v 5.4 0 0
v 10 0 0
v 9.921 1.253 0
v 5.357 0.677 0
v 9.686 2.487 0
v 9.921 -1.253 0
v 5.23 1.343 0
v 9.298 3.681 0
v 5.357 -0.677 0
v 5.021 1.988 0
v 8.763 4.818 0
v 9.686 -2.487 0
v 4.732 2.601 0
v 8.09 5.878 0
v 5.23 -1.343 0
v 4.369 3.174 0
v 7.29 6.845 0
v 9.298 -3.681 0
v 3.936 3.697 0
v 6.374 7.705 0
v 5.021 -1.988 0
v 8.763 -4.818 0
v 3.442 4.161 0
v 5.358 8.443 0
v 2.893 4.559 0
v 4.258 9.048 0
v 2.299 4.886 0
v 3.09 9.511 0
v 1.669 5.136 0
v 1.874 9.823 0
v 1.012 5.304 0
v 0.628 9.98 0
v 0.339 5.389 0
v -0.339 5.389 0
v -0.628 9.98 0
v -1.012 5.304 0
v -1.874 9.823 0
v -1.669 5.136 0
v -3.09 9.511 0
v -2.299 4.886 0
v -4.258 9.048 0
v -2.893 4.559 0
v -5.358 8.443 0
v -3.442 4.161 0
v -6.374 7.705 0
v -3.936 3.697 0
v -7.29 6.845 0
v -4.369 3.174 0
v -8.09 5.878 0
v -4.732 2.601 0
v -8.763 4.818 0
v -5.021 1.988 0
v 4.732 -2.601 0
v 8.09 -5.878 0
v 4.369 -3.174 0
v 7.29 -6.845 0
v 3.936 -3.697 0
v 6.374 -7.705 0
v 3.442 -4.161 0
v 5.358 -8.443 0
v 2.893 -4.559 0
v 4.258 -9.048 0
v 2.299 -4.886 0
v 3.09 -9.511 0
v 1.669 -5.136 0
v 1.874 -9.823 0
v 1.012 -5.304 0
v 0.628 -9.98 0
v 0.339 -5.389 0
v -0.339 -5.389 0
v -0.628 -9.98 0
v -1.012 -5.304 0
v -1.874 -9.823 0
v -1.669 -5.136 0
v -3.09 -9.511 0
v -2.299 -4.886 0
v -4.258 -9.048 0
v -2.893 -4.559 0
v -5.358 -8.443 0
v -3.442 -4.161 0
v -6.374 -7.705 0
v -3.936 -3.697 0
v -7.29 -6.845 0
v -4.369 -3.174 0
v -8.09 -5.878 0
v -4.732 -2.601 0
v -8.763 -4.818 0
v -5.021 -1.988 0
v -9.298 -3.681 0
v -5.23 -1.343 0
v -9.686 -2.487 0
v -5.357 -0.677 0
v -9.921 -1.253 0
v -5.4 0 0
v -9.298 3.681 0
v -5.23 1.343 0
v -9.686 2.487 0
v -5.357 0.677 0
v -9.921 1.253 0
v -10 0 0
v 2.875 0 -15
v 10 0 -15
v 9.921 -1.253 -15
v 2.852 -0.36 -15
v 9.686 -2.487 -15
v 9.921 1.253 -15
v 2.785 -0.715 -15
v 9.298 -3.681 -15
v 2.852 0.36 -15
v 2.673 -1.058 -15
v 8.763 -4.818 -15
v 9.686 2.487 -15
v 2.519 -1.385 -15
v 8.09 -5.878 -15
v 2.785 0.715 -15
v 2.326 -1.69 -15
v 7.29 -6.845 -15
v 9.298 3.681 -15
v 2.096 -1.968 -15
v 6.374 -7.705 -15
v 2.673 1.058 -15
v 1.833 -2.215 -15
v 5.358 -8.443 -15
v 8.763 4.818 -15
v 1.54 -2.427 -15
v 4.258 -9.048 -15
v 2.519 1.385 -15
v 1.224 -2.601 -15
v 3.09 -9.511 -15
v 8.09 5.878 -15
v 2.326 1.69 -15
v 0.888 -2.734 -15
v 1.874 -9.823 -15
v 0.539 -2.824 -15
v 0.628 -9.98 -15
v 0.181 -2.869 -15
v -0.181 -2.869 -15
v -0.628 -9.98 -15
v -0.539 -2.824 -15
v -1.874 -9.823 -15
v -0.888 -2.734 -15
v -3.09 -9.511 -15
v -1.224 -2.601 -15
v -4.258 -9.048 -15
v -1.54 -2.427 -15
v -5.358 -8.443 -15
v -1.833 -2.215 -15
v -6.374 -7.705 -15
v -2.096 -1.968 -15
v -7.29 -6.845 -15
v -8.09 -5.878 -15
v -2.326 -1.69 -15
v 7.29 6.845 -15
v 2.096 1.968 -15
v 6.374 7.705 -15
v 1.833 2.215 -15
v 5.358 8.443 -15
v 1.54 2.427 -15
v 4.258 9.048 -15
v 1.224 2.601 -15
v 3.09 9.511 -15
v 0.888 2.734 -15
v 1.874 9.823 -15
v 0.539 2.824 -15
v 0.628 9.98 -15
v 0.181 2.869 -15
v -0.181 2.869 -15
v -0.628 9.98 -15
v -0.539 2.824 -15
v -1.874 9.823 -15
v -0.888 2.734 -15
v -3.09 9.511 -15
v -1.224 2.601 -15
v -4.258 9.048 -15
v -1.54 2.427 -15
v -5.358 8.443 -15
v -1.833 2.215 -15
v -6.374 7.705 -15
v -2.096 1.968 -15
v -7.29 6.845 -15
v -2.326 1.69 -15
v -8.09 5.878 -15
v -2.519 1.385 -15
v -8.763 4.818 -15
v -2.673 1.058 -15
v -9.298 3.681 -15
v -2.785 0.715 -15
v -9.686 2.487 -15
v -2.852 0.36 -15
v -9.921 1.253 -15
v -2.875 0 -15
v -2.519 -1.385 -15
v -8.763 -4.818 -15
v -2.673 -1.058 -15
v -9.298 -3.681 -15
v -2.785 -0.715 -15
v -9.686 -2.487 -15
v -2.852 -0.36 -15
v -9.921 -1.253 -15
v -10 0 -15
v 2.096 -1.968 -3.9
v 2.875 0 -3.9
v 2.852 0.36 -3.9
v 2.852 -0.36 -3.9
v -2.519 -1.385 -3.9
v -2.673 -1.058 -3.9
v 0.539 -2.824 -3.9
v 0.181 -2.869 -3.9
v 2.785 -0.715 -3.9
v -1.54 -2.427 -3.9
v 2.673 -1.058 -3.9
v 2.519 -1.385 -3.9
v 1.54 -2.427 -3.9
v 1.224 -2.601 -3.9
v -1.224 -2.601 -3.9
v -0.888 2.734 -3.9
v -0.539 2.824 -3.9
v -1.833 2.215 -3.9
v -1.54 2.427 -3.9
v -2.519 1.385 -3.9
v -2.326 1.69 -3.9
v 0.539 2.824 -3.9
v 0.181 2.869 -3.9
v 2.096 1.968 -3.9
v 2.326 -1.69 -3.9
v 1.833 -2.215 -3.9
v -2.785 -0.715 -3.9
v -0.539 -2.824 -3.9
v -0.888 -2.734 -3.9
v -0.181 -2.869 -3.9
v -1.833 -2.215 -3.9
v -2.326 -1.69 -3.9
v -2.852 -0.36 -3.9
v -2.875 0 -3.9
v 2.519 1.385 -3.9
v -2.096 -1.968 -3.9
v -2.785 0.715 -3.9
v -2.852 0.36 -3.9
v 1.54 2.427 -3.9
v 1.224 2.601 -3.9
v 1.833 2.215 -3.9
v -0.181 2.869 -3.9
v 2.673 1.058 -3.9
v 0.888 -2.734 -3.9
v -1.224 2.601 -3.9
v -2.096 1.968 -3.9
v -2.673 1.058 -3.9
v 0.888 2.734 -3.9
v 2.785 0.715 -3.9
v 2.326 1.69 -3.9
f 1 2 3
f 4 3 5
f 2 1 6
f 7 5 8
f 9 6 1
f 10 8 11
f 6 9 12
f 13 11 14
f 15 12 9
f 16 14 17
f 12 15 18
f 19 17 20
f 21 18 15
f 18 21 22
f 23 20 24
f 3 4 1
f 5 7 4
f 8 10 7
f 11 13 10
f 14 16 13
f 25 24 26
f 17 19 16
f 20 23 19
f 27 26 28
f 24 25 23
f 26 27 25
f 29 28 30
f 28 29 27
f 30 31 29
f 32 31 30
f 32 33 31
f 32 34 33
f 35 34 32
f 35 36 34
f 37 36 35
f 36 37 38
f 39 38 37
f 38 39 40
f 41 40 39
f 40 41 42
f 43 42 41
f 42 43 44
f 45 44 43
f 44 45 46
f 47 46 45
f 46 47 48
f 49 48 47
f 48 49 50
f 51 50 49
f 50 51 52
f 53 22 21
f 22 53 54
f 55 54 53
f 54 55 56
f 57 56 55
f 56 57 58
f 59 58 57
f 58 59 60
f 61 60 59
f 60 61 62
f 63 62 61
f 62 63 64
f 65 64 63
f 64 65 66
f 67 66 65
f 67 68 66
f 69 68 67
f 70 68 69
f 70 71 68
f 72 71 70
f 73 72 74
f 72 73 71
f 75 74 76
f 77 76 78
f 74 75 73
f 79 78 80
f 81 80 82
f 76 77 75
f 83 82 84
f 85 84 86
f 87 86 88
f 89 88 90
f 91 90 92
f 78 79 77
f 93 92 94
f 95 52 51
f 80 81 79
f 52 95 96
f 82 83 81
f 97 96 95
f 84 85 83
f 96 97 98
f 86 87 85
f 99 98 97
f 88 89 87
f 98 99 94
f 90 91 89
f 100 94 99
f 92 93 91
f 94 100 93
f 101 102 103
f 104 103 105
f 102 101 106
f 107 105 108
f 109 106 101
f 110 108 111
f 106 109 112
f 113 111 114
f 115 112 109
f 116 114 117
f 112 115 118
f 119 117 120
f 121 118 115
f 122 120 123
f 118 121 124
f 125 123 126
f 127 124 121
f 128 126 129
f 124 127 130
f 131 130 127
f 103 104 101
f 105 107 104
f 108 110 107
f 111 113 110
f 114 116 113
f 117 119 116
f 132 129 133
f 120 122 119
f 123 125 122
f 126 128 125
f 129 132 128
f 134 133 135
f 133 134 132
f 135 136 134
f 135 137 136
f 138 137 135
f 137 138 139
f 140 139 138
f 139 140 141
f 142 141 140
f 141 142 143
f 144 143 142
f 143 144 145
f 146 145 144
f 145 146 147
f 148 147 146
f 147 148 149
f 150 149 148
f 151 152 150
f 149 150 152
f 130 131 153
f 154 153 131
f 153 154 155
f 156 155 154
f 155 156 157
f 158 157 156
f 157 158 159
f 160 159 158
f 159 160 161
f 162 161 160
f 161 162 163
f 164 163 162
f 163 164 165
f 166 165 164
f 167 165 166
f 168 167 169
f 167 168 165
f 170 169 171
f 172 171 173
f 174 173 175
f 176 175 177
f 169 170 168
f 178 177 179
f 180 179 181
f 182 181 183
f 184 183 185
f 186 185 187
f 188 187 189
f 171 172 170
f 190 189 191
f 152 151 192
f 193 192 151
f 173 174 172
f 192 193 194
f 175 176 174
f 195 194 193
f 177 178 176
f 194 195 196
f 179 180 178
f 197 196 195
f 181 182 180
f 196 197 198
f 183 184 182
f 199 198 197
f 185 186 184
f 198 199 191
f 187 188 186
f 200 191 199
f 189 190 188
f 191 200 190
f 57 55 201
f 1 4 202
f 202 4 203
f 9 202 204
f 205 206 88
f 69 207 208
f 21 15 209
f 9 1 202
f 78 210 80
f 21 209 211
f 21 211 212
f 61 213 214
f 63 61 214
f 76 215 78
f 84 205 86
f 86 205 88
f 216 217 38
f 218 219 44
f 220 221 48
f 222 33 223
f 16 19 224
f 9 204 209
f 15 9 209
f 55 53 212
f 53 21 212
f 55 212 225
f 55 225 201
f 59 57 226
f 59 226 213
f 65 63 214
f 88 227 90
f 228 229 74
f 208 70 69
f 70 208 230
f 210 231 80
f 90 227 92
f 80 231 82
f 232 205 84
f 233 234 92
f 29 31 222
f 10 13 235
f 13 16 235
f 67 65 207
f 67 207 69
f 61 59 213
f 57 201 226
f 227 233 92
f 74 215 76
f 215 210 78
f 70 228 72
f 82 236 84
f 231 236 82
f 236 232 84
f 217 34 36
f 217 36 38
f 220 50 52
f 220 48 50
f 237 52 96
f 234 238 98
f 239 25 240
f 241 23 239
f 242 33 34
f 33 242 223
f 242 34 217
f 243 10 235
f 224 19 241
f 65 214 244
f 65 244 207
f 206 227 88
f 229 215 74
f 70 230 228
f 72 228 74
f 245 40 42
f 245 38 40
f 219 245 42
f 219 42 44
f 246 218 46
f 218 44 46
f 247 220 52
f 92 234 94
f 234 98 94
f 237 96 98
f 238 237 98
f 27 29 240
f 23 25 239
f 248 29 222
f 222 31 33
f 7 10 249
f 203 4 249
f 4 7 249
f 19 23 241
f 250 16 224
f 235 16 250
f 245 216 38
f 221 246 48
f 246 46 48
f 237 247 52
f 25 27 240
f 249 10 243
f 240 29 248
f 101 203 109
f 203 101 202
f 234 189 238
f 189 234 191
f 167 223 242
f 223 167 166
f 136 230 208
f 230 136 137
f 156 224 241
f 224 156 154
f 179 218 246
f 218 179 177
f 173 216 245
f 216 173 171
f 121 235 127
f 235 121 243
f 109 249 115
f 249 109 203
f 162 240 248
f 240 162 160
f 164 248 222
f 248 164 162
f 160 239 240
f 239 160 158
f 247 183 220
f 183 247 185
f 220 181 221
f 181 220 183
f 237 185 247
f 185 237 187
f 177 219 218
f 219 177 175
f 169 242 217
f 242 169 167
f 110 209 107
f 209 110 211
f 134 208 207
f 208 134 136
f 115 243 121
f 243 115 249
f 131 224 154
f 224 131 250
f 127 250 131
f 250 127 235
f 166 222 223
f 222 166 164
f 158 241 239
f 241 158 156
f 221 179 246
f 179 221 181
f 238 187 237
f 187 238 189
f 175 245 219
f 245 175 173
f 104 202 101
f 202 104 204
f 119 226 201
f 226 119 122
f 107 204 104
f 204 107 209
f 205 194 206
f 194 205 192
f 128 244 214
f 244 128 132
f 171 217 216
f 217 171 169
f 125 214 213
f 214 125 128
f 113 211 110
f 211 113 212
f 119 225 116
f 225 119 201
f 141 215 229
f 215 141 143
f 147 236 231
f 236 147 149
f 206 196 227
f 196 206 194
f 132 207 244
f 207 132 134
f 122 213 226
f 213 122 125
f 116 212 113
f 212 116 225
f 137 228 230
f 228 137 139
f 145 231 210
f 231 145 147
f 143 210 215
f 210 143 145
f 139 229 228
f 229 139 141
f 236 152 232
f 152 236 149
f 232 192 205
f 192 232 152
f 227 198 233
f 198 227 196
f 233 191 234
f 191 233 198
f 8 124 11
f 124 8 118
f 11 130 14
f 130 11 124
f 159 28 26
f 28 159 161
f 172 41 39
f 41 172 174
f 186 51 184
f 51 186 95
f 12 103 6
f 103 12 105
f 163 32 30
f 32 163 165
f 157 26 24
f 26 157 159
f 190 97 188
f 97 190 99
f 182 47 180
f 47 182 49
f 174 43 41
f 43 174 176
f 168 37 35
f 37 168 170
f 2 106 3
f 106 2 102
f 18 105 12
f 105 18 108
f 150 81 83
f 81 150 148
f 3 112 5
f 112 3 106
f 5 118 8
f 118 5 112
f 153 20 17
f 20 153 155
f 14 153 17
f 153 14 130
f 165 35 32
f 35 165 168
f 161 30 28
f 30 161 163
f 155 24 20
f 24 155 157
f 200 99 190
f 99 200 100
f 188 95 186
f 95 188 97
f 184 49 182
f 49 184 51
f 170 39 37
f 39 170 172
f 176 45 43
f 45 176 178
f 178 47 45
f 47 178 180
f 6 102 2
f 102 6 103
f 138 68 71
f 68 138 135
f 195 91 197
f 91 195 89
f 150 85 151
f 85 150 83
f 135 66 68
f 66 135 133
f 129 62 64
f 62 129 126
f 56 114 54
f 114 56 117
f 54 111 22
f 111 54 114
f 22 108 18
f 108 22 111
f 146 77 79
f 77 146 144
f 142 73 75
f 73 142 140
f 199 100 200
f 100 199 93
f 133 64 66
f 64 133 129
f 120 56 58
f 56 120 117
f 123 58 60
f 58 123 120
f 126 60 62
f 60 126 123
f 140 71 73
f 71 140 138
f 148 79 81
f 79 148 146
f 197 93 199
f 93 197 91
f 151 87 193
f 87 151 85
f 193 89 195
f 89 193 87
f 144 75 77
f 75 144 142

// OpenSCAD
$fn = 50;


difference() {
	union() {
		translate(v = [0, 0, -15.0000000000]) {
			cylinder(h = 15, r = 10.0000000000);
		}
		cylinder(h = 0, r = 16.0000000000);
	}
	union() {
		translate(v = [0, 0, 0]) {
			rotate(a = [0, 0, 0]) {
				difference() {
					union() {
						#translate(v = [0, 0, -15.0000000000]) {
							cylinder(h = 15, r = 2.6000000000);
						}
						#translate(v = [0, 0, -3.9000000000]) {
							cylinder(h = 3.9000000000, r1 = 2.8750000000, r2 = 5.4000000000);
						}
						#translate(v = [0, 0, -15.0000000000]) {
							cylinder(h = 15, r = 2.8750000000);
						}
						#translate(v = [0, 0, -15.0000000000]) {
							cylinder(h = 15, r = 2.6000000000);
						}
					}
					union();
				}
			}
		}
	}
}
